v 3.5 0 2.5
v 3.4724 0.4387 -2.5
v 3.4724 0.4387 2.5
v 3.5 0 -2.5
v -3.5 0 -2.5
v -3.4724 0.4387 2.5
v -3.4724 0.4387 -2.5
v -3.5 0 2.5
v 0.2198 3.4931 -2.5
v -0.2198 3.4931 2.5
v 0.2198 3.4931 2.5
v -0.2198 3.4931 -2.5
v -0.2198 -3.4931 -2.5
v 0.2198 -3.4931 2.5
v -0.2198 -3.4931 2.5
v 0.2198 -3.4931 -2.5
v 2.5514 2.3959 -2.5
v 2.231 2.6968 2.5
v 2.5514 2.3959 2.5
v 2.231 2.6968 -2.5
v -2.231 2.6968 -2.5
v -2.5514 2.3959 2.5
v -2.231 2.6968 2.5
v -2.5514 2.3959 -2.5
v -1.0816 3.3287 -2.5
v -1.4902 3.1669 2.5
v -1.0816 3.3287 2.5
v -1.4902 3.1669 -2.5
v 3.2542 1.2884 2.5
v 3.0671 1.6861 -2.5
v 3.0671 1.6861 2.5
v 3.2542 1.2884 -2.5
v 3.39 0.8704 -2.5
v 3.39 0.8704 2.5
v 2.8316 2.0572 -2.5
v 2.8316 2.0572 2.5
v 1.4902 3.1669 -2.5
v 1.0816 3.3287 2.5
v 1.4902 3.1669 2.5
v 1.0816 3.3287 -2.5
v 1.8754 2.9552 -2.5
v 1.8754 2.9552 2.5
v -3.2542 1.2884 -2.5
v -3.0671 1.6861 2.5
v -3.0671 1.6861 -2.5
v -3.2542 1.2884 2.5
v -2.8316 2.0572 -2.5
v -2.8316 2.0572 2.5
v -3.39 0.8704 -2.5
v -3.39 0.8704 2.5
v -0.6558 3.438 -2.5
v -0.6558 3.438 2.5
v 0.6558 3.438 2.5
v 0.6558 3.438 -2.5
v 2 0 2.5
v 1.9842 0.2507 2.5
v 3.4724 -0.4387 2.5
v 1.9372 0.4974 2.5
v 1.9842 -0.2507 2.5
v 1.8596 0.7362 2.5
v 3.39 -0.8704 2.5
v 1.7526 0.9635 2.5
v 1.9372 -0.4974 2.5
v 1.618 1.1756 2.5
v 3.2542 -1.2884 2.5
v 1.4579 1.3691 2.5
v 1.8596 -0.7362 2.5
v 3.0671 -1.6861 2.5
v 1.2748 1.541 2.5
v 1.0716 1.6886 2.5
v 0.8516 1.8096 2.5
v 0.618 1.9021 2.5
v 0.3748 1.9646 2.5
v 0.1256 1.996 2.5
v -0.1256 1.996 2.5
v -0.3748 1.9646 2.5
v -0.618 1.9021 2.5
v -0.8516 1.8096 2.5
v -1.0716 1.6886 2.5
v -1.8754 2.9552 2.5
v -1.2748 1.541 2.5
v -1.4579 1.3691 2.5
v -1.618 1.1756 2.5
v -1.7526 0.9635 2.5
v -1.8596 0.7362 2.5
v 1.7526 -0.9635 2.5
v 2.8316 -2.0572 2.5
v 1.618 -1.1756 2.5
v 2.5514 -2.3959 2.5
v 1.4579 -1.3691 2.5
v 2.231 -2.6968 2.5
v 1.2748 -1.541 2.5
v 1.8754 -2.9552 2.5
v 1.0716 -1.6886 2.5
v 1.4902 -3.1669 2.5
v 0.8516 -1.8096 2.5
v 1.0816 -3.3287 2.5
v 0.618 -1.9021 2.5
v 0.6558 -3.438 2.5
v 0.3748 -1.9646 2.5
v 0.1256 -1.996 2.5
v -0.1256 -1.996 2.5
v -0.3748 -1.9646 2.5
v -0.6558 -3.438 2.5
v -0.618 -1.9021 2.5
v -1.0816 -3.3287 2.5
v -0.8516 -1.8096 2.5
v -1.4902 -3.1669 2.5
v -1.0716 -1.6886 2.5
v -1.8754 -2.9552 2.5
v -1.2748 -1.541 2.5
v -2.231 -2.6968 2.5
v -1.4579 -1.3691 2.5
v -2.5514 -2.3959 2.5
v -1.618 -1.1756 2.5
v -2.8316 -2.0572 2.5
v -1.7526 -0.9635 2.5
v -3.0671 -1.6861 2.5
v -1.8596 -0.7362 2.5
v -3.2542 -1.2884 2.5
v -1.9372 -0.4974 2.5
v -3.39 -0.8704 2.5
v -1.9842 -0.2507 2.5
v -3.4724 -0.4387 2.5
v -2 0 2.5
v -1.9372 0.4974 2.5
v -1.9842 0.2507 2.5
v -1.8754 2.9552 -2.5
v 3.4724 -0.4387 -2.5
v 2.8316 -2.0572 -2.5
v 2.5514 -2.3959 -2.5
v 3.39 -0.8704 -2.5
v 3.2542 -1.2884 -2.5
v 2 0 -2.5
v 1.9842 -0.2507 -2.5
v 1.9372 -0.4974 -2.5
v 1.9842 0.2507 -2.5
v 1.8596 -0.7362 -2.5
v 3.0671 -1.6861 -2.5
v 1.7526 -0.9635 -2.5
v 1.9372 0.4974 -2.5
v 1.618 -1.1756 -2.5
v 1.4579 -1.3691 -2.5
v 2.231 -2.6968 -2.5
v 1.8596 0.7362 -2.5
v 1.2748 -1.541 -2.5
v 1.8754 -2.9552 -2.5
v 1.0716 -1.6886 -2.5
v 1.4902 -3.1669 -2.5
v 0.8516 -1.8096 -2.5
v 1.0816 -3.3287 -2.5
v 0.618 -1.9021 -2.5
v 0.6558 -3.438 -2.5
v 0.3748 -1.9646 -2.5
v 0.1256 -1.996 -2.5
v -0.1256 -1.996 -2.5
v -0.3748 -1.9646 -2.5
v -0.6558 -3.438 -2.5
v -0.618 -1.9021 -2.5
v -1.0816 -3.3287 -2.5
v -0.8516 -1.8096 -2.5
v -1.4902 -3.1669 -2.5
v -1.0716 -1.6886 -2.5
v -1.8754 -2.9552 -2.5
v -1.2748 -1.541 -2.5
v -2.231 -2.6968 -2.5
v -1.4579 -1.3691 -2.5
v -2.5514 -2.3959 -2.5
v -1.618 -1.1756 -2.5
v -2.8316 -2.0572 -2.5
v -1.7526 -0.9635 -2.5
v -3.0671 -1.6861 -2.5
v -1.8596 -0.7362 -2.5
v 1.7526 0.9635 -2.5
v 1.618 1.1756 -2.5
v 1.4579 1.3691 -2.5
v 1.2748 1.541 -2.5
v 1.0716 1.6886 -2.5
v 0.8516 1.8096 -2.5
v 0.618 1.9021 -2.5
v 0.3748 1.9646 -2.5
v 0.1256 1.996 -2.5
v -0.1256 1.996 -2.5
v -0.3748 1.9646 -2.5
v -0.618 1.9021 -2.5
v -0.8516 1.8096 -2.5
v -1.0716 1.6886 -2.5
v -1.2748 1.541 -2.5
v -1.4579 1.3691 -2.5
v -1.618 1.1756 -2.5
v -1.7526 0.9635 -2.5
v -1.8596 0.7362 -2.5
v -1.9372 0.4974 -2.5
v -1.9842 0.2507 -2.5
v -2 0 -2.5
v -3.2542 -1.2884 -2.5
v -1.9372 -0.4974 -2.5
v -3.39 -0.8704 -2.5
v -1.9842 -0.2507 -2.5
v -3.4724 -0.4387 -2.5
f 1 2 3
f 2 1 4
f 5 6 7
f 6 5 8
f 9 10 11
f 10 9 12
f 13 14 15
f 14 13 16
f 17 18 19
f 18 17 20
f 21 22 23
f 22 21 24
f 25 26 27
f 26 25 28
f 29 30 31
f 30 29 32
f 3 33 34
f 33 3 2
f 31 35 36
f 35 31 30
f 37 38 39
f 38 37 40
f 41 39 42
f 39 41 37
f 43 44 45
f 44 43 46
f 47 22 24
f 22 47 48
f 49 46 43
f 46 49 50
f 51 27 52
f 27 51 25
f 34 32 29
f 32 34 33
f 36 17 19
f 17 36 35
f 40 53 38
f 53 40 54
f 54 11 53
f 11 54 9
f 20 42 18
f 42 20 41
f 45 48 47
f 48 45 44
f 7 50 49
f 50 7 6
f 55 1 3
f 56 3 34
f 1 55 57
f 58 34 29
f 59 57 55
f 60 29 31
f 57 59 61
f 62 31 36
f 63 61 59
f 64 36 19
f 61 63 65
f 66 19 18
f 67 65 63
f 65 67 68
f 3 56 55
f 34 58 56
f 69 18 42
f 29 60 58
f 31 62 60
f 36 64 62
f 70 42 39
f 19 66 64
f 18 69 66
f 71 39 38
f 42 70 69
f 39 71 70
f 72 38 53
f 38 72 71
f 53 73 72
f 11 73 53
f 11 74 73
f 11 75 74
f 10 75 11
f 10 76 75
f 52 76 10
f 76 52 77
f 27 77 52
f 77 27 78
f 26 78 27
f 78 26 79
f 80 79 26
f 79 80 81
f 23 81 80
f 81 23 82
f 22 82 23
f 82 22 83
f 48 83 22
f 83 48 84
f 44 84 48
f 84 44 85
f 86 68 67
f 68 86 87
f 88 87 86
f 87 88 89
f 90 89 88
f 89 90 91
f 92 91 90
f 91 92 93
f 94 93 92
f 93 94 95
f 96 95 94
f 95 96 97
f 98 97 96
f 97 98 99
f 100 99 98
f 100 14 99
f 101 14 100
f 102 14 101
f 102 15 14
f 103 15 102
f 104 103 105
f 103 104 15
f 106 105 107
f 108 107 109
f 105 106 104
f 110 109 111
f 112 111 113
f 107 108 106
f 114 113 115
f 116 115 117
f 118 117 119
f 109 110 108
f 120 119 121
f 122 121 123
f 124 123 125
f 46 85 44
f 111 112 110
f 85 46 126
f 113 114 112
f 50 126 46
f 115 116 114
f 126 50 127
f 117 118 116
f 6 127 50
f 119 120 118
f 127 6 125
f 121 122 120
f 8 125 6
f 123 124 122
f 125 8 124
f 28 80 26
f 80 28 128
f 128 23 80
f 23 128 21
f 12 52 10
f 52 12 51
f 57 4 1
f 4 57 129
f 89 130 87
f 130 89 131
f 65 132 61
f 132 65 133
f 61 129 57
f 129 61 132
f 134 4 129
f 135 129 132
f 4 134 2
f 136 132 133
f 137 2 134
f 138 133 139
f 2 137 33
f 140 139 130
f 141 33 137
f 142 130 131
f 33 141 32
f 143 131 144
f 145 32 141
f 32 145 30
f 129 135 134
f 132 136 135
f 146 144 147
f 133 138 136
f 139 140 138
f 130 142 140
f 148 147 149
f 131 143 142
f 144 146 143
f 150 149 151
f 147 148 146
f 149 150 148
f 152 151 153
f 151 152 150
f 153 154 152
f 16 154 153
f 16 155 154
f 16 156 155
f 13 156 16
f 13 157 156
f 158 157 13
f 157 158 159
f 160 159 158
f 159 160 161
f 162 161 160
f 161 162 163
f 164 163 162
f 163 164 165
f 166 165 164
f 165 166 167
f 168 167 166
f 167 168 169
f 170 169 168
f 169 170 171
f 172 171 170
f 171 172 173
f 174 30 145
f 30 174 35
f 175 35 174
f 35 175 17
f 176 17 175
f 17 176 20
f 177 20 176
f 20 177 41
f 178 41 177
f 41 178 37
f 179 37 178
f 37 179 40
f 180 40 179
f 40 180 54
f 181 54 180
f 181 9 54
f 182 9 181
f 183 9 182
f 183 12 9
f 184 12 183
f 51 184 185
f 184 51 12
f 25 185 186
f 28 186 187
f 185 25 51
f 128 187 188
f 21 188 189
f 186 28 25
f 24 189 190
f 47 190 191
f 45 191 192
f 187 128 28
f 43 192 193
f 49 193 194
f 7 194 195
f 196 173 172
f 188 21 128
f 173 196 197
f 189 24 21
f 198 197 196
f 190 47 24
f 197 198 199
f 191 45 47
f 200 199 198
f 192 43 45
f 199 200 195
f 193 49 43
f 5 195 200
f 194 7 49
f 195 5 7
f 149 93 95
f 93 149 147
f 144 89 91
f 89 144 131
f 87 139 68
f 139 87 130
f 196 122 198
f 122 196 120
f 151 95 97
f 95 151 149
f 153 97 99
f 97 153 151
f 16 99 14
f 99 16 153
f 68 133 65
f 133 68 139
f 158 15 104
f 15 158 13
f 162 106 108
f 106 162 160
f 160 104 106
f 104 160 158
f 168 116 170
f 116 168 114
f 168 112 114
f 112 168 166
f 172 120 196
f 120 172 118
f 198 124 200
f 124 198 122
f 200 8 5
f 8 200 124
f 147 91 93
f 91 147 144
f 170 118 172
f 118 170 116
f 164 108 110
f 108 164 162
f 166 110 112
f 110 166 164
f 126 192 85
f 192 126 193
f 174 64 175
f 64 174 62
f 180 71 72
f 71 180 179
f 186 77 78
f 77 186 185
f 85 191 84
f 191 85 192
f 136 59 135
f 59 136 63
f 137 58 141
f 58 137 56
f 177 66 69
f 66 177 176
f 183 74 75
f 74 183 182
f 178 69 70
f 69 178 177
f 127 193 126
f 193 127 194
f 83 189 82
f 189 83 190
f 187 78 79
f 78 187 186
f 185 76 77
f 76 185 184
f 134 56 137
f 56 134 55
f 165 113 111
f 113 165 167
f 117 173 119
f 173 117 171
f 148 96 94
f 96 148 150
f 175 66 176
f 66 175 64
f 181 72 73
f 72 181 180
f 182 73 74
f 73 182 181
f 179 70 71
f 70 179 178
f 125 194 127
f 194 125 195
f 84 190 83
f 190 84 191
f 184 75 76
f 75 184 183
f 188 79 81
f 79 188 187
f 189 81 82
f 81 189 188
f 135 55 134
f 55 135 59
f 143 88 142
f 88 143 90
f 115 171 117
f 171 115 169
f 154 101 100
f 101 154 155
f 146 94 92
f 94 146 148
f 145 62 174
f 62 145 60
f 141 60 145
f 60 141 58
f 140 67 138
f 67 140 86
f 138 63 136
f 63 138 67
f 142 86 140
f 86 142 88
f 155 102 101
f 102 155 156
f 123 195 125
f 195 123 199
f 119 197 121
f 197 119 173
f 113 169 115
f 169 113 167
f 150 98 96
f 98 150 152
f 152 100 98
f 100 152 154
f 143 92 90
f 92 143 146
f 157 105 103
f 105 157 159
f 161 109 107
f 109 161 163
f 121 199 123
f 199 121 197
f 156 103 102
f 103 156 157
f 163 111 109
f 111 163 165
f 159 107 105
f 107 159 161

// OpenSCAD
$fn = 50;


difference() {
	union() {
		translate(v = [0, 0, -2.5000000000]) {
			cylinder(h = 5, r = 3.5000000000);
		}
	}
	union() {
		translate(v = [0, 0, -100.0000000000]) {
			cylinder(h = 200, r = 2);
		}
	}
}
